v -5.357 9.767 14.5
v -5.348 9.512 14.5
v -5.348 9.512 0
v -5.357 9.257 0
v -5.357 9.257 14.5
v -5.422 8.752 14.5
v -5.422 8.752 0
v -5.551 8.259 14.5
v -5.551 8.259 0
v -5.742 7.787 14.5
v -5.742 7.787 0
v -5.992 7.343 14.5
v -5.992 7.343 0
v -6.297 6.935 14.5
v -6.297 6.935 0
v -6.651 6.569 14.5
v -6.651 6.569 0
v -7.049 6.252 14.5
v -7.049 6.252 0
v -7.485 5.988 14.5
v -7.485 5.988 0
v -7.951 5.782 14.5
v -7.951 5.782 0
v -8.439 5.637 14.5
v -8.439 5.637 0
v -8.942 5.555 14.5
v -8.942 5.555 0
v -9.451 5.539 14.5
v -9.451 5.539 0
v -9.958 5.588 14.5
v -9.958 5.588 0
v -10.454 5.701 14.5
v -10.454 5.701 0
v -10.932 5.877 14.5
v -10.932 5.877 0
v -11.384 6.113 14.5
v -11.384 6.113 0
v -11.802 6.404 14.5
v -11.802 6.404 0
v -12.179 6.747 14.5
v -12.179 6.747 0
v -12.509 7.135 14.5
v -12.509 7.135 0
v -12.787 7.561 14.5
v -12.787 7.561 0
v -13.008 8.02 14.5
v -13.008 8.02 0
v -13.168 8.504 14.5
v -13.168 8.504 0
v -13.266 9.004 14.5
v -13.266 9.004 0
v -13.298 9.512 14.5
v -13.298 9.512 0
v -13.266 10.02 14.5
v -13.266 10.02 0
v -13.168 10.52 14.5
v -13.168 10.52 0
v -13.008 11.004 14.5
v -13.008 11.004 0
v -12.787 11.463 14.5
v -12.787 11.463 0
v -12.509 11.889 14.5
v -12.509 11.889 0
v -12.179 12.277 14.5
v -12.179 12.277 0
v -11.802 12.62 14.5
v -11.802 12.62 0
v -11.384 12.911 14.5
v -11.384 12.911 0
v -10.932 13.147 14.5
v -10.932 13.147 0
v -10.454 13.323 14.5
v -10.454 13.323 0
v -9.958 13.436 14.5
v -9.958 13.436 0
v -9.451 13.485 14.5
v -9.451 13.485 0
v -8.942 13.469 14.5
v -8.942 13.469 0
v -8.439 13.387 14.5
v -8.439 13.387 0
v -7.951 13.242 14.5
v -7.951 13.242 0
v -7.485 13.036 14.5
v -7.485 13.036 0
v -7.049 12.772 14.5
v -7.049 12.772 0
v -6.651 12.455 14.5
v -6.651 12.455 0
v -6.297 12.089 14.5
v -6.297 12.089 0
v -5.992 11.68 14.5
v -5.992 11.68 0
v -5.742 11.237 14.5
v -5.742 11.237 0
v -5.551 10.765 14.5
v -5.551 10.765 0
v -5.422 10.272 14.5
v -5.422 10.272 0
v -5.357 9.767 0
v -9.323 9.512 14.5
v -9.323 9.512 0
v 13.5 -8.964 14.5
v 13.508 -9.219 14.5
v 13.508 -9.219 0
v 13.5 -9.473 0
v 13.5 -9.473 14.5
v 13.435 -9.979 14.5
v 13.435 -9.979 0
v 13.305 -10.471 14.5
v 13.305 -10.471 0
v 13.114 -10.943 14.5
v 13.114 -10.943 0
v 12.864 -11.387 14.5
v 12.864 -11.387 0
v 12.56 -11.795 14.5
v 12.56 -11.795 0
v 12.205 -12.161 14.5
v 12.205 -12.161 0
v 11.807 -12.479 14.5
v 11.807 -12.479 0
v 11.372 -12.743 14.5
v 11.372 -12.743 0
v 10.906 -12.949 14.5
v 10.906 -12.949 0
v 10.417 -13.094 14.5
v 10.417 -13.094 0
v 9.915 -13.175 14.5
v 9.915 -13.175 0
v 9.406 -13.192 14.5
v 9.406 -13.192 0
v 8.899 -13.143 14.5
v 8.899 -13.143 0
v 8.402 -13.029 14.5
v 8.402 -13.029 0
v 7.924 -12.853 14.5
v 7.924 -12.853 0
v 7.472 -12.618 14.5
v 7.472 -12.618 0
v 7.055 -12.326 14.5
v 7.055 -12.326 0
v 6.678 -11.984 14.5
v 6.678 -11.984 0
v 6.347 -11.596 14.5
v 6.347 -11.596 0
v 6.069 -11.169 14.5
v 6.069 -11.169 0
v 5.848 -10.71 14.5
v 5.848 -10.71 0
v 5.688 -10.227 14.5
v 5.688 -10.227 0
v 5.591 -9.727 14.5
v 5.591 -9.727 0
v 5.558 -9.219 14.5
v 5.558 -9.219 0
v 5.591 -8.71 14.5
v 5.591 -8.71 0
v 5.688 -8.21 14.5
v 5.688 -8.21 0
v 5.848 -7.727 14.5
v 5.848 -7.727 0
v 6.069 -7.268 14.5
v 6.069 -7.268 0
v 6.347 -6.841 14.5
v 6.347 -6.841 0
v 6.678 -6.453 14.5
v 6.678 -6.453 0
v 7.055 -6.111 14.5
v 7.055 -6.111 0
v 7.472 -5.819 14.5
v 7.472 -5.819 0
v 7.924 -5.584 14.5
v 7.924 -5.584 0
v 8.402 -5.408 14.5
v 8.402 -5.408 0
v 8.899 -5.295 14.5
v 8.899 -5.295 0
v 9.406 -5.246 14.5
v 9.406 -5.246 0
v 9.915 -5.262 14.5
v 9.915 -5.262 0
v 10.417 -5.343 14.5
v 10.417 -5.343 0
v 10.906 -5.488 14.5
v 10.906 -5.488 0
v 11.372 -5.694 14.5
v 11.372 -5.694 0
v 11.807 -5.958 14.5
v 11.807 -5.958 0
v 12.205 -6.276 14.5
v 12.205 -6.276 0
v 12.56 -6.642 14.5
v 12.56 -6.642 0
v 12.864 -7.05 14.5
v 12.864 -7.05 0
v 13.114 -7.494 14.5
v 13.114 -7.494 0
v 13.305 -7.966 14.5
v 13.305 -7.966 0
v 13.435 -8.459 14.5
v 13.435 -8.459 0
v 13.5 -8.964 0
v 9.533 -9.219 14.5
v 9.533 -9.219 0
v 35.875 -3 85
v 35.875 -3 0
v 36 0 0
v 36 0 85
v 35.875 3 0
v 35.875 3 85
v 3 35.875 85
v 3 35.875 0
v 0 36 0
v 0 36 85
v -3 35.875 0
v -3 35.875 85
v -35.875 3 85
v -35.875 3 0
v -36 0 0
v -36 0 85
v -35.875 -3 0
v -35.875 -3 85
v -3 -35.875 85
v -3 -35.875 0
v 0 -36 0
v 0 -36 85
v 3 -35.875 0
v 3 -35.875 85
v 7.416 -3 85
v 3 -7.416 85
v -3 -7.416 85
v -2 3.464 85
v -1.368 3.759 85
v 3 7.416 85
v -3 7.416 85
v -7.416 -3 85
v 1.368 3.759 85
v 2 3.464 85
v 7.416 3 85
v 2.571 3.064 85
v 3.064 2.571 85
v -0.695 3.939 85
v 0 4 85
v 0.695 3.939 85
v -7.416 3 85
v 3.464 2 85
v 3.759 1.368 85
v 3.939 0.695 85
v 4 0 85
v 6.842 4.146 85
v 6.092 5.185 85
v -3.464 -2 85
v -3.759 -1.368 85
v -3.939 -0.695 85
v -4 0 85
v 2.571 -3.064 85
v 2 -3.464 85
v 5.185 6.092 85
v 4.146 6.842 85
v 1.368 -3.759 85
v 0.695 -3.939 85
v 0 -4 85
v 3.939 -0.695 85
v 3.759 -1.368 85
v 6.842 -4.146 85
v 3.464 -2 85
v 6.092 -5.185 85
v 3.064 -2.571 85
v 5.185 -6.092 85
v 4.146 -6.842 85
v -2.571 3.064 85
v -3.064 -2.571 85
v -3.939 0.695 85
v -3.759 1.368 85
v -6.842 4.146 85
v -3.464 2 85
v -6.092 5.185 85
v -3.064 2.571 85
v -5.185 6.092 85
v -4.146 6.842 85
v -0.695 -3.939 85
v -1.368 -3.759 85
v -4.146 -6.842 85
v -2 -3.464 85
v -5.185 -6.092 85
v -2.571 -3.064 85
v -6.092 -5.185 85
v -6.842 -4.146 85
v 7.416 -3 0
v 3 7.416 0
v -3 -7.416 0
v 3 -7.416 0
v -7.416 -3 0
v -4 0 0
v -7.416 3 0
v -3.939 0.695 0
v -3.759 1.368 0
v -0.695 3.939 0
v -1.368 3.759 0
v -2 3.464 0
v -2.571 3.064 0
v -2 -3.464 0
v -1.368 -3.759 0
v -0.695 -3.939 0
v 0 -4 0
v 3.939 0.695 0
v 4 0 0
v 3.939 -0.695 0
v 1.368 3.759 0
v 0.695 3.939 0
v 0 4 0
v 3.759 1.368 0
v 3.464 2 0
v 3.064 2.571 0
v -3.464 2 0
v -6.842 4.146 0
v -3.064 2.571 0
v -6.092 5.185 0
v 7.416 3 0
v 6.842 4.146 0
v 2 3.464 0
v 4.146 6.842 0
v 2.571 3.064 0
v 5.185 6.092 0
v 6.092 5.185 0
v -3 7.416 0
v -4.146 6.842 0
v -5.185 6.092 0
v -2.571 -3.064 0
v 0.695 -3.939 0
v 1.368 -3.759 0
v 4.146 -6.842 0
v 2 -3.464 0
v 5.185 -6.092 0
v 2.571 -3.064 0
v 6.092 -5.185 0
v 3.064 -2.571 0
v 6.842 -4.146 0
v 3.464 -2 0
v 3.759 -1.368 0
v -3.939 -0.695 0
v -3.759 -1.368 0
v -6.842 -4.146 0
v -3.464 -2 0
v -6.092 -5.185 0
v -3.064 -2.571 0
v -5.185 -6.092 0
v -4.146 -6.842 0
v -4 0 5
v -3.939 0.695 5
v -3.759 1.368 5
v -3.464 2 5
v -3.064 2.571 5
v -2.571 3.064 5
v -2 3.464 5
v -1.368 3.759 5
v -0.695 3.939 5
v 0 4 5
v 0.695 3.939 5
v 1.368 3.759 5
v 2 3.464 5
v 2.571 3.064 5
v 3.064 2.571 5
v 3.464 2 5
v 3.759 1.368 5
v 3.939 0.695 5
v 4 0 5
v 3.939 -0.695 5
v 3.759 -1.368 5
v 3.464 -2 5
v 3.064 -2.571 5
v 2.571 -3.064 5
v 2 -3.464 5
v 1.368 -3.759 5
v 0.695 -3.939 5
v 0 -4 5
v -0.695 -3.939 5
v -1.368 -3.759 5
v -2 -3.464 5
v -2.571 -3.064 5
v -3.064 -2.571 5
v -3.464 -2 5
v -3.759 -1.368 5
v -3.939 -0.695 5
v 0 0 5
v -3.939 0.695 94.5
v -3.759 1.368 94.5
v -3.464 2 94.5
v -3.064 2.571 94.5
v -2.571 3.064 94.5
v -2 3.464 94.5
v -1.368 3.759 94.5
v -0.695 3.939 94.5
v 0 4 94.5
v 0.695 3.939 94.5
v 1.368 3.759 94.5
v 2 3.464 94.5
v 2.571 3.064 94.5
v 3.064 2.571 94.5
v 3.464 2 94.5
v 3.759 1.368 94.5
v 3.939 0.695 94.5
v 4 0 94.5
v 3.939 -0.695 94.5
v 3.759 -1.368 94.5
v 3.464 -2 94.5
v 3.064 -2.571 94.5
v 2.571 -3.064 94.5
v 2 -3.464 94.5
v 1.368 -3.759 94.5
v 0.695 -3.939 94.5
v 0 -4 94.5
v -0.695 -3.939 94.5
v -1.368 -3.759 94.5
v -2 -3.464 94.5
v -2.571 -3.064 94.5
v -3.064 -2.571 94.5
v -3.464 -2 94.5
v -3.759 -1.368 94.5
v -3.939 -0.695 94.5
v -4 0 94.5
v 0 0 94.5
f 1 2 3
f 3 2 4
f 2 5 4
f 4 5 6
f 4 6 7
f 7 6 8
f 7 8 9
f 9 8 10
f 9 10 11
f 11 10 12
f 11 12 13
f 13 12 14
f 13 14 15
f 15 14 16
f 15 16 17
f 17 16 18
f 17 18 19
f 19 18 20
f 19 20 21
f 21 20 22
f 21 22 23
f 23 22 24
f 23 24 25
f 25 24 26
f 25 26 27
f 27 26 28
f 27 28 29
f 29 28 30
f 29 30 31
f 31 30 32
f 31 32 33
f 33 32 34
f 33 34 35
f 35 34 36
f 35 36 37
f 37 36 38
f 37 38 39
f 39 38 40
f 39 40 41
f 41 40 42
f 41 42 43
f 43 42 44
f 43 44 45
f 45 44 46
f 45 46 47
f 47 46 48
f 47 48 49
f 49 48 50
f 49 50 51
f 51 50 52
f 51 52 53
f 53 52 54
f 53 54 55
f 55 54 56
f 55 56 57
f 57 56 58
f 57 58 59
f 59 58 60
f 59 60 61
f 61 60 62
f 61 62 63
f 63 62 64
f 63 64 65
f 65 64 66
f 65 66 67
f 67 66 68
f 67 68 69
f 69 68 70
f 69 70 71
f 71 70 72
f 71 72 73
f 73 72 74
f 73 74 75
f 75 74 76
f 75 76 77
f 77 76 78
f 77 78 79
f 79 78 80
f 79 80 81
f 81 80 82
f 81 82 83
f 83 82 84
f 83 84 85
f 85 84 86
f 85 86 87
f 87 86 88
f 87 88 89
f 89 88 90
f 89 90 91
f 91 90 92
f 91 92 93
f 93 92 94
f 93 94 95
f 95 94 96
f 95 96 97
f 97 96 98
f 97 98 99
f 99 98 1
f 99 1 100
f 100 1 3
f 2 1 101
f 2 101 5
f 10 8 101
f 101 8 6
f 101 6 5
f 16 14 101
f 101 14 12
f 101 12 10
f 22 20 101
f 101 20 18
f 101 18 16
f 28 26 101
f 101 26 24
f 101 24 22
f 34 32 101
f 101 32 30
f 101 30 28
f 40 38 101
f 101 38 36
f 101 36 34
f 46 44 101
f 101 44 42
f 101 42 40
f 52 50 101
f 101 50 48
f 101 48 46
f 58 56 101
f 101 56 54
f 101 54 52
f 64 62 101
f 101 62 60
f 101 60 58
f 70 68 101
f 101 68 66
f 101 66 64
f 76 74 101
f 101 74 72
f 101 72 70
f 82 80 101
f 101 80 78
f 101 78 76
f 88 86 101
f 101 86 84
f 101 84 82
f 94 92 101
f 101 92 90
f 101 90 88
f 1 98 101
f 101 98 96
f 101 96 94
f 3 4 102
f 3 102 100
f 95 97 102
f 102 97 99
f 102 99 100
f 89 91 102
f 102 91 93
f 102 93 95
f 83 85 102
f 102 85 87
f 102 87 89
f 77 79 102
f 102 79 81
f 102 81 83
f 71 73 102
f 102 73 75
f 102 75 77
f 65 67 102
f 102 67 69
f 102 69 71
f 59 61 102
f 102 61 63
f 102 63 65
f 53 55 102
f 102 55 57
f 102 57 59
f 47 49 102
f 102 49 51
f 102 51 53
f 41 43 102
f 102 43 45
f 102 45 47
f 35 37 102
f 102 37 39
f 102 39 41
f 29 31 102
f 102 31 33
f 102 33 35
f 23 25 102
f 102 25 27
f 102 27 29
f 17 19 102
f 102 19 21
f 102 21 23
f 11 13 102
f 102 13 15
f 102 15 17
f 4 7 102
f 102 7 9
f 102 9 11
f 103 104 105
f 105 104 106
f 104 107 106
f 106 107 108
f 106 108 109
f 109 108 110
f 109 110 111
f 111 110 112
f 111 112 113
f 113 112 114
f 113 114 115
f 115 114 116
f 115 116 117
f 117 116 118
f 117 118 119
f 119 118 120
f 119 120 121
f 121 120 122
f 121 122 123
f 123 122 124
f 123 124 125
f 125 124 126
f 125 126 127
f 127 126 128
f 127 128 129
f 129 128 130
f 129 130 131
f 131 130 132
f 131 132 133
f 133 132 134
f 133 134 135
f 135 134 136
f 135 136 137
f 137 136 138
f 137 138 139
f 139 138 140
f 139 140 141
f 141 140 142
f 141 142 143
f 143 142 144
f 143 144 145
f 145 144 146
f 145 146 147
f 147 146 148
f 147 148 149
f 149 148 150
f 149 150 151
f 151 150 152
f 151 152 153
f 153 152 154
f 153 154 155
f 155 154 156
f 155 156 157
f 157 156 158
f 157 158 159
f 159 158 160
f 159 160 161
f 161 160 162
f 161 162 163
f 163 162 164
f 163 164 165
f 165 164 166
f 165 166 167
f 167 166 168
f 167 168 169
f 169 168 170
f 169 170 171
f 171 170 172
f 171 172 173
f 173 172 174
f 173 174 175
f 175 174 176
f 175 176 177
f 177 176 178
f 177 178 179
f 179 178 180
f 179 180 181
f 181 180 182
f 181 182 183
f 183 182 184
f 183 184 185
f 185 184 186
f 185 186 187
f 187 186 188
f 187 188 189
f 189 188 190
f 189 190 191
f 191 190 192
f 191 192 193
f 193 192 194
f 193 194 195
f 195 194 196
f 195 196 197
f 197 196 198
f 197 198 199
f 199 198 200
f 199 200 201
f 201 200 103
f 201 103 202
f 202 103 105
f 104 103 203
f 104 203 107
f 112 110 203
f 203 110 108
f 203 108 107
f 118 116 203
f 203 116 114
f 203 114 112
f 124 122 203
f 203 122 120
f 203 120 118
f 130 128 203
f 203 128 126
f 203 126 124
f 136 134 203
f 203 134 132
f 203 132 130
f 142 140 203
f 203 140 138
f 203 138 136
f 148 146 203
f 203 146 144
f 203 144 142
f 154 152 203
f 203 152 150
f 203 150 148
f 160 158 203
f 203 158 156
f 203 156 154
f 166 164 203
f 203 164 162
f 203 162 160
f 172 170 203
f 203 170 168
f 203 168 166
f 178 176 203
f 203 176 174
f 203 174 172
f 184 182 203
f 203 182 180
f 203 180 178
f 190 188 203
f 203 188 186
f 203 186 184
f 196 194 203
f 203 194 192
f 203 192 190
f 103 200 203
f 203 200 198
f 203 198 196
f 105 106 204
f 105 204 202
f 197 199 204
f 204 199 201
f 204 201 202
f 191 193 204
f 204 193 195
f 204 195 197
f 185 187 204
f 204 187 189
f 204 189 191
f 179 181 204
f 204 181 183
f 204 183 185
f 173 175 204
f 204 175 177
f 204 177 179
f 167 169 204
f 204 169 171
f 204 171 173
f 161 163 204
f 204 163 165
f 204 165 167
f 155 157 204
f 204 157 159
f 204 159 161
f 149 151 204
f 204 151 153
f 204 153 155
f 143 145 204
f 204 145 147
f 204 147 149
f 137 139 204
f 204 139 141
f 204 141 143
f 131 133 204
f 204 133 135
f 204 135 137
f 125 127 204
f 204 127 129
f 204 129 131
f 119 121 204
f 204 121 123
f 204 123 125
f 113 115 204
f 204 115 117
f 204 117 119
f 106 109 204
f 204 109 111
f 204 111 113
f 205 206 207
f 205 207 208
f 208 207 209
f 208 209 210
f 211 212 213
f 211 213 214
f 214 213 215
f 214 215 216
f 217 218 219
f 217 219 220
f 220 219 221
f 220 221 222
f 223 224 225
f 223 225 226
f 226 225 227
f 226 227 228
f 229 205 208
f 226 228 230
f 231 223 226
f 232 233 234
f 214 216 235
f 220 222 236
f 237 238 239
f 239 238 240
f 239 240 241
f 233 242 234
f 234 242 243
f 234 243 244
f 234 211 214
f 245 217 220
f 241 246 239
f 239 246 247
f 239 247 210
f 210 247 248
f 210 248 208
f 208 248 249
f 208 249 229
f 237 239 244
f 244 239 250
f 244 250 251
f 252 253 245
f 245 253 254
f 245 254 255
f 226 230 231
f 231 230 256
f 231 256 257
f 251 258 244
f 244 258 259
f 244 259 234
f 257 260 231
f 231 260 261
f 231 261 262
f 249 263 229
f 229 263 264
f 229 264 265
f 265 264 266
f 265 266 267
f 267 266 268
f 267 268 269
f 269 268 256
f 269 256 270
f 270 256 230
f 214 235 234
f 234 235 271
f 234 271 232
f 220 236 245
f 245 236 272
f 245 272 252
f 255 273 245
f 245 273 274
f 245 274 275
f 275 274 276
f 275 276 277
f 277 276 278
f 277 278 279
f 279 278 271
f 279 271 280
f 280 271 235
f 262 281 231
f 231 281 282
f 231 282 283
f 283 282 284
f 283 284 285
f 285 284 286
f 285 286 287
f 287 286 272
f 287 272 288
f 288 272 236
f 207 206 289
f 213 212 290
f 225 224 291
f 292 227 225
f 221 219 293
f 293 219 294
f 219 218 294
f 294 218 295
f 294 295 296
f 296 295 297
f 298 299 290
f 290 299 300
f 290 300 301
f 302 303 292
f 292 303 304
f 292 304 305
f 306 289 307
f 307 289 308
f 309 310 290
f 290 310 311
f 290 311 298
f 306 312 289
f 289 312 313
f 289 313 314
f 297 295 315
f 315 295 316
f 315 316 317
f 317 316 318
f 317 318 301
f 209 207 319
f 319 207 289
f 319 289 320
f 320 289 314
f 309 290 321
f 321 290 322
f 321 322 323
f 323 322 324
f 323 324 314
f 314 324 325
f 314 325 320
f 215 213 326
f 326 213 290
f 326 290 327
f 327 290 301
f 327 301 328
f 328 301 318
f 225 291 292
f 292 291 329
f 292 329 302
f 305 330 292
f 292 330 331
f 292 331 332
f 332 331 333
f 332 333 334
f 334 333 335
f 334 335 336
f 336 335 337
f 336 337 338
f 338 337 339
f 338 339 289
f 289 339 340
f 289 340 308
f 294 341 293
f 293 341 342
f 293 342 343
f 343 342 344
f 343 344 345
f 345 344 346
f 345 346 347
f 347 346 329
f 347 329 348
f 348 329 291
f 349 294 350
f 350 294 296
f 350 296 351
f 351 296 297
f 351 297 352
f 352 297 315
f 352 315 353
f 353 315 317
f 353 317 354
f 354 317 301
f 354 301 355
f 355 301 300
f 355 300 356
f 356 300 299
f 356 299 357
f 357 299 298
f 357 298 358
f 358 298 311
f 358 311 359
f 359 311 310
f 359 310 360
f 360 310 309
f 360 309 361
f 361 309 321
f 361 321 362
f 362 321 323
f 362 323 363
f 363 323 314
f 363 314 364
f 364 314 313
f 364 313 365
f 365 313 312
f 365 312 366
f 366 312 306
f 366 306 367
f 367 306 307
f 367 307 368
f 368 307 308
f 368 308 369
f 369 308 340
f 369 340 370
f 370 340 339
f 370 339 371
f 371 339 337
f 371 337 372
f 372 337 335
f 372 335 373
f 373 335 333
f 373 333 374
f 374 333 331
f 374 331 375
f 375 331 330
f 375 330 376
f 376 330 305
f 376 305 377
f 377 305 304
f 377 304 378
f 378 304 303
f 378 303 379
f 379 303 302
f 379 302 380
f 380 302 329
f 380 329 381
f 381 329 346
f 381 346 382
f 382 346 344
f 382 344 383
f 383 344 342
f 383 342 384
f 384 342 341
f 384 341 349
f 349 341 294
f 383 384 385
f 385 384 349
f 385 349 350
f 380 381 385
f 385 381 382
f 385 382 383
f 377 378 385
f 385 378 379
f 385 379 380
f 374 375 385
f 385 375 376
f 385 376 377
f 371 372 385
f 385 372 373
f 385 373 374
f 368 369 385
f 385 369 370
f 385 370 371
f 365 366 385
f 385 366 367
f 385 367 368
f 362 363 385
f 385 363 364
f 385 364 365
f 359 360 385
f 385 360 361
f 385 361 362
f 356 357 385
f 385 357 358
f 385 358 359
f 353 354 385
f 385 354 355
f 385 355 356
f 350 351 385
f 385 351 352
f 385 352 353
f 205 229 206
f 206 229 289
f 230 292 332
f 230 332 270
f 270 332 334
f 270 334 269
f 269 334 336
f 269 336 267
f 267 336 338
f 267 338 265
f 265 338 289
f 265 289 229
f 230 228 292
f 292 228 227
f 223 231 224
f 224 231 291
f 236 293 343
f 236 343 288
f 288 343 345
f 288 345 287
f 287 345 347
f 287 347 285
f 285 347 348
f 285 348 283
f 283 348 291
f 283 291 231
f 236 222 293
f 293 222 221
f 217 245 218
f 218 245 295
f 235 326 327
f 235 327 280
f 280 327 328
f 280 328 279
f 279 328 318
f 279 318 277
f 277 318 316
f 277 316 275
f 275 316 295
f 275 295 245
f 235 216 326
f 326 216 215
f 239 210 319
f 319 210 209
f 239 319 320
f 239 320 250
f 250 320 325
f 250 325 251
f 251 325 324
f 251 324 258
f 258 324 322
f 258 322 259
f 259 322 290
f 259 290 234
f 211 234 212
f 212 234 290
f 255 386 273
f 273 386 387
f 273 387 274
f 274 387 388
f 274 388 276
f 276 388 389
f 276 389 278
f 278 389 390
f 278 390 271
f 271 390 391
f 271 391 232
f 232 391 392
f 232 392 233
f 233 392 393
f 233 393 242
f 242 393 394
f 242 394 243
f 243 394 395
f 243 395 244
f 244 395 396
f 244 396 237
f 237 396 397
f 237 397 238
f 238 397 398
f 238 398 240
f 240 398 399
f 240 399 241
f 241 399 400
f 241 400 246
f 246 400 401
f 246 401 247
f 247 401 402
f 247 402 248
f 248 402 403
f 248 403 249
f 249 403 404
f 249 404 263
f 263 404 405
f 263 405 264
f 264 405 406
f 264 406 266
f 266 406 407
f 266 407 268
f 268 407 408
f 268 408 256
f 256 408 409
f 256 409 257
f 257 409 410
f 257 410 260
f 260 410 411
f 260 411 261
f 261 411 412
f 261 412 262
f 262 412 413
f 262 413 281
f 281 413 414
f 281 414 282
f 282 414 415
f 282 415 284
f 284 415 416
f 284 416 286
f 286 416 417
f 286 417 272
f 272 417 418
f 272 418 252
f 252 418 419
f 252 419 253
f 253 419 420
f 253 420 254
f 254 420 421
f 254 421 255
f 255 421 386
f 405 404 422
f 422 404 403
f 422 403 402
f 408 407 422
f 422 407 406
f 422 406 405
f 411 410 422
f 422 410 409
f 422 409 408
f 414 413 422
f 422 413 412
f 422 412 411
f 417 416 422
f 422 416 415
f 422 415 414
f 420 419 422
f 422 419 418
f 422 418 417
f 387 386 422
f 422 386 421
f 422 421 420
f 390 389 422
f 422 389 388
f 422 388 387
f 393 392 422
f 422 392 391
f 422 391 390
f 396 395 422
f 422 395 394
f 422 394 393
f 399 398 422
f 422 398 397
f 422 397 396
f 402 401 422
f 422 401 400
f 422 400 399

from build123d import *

# Parameters (mm, degrees)
SKETCH1_R             = 36
BOSS_EXTRUDE1_DEPTH   = 85
SKETCH3_R             = 4
CUT_EXTRUDE2_DEPTH    = 5
SKETCH4_OUTSIDE_W     = 100.528
SKETCH4_OUTSIDE_H     = 100.528
CUT_EXTRUDE3_DEPTH    = 86
SKETCH5_R             = 3.975
BOSS_EXTRUDE2_DEPTH   = 14.5
BOSS_EXTRUDE2_2_DEPTH = 14.5
SKETCH2_R             = 4
BOSS_EXTRUDE3_DEPTH   = 9.5


with BuildPart() as part:
    # Sketch1 → Boss-Extrude1 (new body)
    with BuildSketch(Plane.XY):
        Circle(SKETCH1_R)
    extrude(amount=BOSS_EXTRUDE1_DEPTH)

    # Sketch3 → Cut-Extrude2 (cut)
    with BuildSketch(Plane(origin=(0, 0, 0), x_dir=(-1, 0, 0), z_dir=(0, 0, -1))):
        Circle(SKETCH3_R)
    extrude(amount=-CUT_EXTRUDE2_DEPTH, mode=Mode.SUBTRACT)

    # Sketch4 outside → Cut-Extrude3 (cut, through all)
    with BuildSketch(Plane(origin=(0, 0, 0), x_dir=(-1, 0, 0), z_dir=(0, 0, -1))):
        Rectangle(SKETCH4_OUTSIDE_W, SKETCH4_OUTSIDE_H)
        with BuildLine():
            Line((-35.874782229, 3), (-7.416198487, 3))
            ThreePointArc((-7.416198487, 3), (-5.656854249, 5.656854249), (-3, 7.416198487))
            Line((-3, 7.416198487), (-3, 35.874782229))
            ThreePointArc((-3, 35.874782229), (0, 36), (3, 35.874782229))
            Line((3, 35.874782229), (3, 7.416198487))
            ThreePointArc((3, 7.416198487), (5.656854249, 5.656854249), (7.416198487, 3))
            Line((7.416198487, 3), (35.874782229, 3))
            ThreePointArc((35.874782229, 3), (36, 0), (35.874782229, -3))
            Line((35.874782229, -3), (7.416198487, -3))
            ThreePointArc((7.416198487, -3), (5.656854249, -5.656854249), (3, -7.416198487))
            Line((3, -7.416198487), (3, -35.874782229))
            ThreePointArc((3, -35.874782229), (0, -36), (-3, -35.874782229))
            Line((-3, -35.874782229), (-3, -7.416198487))
            ThreePointArc((-3, -7.416198487), (-5.656854249, -5.656854249), (-7.416198487, -3))
            Line((-7.416198487, -3), (-35.874782229, -3))
            ThreePointArc((-35.874782229, -3), (-36, 0), (-35.874782229, 3))
        make_face(mode=Mode.SUBTRACT)
    extrude(amount=-CUT_EXTRUDE3_DEPTH, mode=Mode.SUBTRACT)

    # Sketch2 → Boss-Extrude3 (add)
    with BuildSketch(Plane.XY.offset(85)):
        Circle(SKETCH2_R)
    extrude(amount=BOSS_EXTRUDE3_DEPTH)


with BuildPart() as body_2:
    # Sketch5 → Boss-Extrude2 (new body)
    with BuildSketch(Plane.XY):
        with Locations((-9.323429637, 9.511993383)):
            Circle(SKETCH5_R)
    extrude(amount=BOSS_EXTRUDE2_DEPTH)


with BuildPart() as body_3:
    # Sketch5 → Boss-Extrude2 2 (new body)
    with BuildSketch(Plane.XY):
        with Locations((9.53294491, -9.218672001)):
            Circle(SKETCH5_R)
    extrude(amount=BOSS_EXTRUDE2_2_DEPTH)


solid = Compound([part.part, body_2.part, body_3.part])
